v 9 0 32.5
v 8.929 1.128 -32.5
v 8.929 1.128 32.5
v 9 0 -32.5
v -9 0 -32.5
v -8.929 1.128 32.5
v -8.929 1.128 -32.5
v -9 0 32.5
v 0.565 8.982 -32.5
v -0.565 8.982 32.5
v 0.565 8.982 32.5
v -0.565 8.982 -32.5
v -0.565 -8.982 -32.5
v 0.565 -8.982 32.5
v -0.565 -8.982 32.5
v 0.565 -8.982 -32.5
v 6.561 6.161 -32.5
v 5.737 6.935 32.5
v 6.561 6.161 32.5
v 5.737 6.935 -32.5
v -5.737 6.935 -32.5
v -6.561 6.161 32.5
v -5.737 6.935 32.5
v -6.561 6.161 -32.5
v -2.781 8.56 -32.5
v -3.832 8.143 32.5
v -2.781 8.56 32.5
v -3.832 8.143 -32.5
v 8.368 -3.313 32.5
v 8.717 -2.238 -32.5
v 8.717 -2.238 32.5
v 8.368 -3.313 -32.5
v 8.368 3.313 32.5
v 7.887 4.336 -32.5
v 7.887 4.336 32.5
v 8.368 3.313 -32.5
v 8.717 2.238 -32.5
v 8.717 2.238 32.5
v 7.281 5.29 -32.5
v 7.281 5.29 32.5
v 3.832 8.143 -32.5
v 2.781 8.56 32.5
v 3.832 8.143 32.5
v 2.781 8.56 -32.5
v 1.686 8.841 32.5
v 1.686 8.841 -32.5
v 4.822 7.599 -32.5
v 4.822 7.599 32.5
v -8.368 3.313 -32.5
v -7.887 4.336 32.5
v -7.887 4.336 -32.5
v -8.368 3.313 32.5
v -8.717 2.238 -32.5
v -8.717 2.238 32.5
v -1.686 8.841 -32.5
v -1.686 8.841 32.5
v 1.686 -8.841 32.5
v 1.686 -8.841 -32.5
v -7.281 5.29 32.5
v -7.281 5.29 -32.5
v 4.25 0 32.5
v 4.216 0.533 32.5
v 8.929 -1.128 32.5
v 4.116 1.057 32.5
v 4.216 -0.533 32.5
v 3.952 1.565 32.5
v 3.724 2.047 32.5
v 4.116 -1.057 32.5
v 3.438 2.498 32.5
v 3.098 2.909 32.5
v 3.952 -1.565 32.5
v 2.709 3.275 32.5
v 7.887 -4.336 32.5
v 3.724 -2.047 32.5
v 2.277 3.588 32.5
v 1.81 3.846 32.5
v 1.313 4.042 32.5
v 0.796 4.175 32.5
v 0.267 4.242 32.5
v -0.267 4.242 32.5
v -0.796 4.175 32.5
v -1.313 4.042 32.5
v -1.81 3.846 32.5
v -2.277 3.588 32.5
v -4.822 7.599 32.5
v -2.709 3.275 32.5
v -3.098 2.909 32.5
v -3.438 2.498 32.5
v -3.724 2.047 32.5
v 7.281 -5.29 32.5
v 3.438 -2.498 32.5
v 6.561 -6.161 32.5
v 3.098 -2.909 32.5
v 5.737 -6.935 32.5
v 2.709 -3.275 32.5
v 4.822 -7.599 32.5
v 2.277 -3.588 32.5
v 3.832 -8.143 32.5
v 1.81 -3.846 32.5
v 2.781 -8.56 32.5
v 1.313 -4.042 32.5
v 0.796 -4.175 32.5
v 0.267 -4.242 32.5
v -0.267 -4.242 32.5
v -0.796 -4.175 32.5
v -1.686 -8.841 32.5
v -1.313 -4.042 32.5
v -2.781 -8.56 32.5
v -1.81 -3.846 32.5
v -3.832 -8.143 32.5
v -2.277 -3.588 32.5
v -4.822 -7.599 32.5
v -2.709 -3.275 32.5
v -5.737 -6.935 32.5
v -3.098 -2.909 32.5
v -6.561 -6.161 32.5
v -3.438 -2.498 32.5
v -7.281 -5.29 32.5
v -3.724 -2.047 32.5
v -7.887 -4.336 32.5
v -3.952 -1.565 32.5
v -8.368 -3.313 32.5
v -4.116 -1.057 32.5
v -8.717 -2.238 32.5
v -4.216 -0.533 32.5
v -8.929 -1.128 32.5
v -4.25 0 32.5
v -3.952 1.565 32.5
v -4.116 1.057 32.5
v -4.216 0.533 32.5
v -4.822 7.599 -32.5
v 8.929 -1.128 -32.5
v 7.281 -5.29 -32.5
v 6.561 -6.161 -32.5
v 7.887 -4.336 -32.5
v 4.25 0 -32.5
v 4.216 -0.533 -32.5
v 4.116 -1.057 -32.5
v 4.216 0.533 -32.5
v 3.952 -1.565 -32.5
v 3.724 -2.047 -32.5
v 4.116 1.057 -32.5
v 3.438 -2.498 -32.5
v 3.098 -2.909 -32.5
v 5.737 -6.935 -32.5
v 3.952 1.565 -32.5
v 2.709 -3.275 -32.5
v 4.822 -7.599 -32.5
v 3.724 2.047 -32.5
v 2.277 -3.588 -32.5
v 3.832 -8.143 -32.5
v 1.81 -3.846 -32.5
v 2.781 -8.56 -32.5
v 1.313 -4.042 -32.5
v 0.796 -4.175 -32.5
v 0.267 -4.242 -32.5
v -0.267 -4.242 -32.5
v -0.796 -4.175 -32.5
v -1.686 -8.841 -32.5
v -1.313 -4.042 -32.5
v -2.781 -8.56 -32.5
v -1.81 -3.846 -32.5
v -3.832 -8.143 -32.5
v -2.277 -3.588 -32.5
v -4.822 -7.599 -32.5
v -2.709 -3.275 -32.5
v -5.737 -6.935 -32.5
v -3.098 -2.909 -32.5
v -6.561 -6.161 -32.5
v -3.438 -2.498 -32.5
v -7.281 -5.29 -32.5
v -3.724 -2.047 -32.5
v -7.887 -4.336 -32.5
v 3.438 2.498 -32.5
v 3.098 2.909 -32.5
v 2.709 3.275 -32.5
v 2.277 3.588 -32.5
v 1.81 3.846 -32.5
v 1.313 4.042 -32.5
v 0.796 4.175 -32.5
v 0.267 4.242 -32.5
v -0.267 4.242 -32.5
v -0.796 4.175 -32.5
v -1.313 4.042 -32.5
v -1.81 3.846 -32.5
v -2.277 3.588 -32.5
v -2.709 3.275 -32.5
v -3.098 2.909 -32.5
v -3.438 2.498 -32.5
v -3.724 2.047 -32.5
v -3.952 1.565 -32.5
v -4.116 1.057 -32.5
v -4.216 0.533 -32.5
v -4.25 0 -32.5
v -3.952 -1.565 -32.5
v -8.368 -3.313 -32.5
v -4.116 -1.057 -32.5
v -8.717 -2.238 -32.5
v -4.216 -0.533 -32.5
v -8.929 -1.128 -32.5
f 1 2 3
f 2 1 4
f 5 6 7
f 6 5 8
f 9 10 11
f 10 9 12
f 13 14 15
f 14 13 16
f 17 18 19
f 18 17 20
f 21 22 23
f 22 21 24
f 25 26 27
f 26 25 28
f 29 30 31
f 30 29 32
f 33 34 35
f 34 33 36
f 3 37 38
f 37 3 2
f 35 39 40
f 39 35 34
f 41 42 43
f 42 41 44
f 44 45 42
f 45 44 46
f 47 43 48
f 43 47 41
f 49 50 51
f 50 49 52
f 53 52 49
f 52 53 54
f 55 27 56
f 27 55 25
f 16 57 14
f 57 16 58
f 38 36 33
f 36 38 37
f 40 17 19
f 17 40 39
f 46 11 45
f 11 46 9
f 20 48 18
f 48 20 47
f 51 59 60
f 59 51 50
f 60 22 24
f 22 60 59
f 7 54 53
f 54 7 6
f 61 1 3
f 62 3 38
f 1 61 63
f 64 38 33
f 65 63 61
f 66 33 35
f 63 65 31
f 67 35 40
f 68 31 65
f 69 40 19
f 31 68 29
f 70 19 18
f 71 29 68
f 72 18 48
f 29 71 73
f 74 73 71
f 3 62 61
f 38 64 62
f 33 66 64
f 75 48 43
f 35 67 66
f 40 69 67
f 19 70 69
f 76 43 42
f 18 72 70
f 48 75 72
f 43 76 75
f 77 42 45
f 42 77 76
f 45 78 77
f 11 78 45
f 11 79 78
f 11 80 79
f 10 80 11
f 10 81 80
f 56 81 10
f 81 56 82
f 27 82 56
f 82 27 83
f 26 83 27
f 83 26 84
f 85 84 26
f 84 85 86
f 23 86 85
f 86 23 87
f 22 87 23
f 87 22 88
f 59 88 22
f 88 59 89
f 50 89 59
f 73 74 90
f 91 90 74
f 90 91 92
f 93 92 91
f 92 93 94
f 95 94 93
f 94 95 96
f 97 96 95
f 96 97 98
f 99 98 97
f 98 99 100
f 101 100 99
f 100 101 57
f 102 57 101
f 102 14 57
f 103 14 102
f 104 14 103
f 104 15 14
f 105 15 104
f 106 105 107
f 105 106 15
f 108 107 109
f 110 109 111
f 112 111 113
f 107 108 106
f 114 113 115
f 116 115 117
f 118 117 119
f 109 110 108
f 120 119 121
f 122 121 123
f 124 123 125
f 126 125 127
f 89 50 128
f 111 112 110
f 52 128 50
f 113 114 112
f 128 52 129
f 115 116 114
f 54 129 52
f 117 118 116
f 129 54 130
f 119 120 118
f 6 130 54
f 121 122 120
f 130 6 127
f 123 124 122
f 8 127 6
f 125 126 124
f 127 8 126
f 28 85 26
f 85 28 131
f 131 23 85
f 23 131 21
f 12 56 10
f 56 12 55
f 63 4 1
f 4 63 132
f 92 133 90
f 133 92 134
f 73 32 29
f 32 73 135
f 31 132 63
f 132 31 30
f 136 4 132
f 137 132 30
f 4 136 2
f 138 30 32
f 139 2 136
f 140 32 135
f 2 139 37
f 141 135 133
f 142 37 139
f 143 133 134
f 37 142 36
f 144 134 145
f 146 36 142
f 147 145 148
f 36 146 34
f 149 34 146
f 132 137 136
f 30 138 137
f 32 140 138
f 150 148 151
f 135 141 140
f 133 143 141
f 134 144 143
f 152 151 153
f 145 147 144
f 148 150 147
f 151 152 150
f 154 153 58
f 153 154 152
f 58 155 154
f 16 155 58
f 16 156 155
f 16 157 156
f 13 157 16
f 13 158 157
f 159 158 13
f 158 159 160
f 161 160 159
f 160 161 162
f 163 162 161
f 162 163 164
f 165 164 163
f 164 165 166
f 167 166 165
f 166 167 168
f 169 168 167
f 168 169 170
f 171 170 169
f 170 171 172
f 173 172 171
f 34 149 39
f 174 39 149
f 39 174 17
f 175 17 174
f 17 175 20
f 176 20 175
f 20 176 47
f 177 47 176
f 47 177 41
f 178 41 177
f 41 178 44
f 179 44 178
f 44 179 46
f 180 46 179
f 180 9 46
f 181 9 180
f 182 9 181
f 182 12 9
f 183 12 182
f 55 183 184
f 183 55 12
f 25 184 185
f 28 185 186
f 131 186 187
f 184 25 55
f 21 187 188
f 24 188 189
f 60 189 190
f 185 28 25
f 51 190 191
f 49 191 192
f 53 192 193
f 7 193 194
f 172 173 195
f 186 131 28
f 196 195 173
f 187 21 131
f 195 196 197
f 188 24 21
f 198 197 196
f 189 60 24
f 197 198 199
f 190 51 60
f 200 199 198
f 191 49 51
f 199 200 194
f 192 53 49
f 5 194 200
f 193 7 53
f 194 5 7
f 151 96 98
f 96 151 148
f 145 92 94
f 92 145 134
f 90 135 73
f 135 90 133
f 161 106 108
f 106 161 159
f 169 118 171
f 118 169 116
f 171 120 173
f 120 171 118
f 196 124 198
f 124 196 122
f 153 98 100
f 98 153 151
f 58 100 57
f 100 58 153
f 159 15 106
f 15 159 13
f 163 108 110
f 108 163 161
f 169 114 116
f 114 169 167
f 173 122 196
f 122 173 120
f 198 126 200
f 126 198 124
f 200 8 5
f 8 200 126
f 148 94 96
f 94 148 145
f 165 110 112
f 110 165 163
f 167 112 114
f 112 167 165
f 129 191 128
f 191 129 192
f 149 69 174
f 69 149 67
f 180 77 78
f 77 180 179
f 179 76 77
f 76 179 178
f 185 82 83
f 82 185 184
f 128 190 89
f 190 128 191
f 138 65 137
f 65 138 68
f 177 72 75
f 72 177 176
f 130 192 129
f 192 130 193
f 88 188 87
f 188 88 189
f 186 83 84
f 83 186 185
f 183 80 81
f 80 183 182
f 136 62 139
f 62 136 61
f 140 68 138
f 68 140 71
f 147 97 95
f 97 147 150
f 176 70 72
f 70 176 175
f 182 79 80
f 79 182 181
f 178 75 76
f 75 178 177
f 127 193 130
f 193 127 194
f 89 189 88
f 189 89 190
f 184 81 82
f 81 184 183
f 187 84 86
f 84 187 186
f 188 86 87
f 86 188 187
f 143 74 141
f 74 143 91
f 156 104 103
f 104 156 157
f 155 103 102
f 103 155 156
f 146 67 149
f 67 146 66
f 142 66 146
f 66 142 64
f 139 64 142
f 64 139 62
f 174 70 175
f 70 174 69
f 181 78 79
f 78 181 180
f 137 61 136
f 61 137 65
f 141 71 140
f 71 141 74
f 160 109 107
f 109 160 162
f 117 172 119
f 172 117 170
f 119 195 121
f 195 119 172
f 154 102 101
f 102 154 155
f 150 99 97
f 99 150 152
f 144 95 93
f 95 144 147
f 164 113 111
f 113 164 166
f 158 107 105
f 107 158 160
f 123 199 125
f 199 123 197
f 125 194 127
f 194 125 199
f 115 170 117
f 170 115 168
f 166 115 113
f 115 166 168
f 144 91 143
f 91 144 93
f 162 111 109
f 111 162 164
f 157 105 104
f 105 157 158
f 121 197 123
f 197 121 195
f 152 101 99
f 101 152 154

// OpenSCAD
$fn = 50;


difference() {
	union() {
		translate(v = [0, 0, -32.5000000000]) {
			cylinder(h = 65, r = 9.0000000000);
		}
	}
	union() {
		translate(v = [0, 0, -100.0000000000]) {
			cylinder(h = 200, r = 4.2500000000);
		}
	}
}
